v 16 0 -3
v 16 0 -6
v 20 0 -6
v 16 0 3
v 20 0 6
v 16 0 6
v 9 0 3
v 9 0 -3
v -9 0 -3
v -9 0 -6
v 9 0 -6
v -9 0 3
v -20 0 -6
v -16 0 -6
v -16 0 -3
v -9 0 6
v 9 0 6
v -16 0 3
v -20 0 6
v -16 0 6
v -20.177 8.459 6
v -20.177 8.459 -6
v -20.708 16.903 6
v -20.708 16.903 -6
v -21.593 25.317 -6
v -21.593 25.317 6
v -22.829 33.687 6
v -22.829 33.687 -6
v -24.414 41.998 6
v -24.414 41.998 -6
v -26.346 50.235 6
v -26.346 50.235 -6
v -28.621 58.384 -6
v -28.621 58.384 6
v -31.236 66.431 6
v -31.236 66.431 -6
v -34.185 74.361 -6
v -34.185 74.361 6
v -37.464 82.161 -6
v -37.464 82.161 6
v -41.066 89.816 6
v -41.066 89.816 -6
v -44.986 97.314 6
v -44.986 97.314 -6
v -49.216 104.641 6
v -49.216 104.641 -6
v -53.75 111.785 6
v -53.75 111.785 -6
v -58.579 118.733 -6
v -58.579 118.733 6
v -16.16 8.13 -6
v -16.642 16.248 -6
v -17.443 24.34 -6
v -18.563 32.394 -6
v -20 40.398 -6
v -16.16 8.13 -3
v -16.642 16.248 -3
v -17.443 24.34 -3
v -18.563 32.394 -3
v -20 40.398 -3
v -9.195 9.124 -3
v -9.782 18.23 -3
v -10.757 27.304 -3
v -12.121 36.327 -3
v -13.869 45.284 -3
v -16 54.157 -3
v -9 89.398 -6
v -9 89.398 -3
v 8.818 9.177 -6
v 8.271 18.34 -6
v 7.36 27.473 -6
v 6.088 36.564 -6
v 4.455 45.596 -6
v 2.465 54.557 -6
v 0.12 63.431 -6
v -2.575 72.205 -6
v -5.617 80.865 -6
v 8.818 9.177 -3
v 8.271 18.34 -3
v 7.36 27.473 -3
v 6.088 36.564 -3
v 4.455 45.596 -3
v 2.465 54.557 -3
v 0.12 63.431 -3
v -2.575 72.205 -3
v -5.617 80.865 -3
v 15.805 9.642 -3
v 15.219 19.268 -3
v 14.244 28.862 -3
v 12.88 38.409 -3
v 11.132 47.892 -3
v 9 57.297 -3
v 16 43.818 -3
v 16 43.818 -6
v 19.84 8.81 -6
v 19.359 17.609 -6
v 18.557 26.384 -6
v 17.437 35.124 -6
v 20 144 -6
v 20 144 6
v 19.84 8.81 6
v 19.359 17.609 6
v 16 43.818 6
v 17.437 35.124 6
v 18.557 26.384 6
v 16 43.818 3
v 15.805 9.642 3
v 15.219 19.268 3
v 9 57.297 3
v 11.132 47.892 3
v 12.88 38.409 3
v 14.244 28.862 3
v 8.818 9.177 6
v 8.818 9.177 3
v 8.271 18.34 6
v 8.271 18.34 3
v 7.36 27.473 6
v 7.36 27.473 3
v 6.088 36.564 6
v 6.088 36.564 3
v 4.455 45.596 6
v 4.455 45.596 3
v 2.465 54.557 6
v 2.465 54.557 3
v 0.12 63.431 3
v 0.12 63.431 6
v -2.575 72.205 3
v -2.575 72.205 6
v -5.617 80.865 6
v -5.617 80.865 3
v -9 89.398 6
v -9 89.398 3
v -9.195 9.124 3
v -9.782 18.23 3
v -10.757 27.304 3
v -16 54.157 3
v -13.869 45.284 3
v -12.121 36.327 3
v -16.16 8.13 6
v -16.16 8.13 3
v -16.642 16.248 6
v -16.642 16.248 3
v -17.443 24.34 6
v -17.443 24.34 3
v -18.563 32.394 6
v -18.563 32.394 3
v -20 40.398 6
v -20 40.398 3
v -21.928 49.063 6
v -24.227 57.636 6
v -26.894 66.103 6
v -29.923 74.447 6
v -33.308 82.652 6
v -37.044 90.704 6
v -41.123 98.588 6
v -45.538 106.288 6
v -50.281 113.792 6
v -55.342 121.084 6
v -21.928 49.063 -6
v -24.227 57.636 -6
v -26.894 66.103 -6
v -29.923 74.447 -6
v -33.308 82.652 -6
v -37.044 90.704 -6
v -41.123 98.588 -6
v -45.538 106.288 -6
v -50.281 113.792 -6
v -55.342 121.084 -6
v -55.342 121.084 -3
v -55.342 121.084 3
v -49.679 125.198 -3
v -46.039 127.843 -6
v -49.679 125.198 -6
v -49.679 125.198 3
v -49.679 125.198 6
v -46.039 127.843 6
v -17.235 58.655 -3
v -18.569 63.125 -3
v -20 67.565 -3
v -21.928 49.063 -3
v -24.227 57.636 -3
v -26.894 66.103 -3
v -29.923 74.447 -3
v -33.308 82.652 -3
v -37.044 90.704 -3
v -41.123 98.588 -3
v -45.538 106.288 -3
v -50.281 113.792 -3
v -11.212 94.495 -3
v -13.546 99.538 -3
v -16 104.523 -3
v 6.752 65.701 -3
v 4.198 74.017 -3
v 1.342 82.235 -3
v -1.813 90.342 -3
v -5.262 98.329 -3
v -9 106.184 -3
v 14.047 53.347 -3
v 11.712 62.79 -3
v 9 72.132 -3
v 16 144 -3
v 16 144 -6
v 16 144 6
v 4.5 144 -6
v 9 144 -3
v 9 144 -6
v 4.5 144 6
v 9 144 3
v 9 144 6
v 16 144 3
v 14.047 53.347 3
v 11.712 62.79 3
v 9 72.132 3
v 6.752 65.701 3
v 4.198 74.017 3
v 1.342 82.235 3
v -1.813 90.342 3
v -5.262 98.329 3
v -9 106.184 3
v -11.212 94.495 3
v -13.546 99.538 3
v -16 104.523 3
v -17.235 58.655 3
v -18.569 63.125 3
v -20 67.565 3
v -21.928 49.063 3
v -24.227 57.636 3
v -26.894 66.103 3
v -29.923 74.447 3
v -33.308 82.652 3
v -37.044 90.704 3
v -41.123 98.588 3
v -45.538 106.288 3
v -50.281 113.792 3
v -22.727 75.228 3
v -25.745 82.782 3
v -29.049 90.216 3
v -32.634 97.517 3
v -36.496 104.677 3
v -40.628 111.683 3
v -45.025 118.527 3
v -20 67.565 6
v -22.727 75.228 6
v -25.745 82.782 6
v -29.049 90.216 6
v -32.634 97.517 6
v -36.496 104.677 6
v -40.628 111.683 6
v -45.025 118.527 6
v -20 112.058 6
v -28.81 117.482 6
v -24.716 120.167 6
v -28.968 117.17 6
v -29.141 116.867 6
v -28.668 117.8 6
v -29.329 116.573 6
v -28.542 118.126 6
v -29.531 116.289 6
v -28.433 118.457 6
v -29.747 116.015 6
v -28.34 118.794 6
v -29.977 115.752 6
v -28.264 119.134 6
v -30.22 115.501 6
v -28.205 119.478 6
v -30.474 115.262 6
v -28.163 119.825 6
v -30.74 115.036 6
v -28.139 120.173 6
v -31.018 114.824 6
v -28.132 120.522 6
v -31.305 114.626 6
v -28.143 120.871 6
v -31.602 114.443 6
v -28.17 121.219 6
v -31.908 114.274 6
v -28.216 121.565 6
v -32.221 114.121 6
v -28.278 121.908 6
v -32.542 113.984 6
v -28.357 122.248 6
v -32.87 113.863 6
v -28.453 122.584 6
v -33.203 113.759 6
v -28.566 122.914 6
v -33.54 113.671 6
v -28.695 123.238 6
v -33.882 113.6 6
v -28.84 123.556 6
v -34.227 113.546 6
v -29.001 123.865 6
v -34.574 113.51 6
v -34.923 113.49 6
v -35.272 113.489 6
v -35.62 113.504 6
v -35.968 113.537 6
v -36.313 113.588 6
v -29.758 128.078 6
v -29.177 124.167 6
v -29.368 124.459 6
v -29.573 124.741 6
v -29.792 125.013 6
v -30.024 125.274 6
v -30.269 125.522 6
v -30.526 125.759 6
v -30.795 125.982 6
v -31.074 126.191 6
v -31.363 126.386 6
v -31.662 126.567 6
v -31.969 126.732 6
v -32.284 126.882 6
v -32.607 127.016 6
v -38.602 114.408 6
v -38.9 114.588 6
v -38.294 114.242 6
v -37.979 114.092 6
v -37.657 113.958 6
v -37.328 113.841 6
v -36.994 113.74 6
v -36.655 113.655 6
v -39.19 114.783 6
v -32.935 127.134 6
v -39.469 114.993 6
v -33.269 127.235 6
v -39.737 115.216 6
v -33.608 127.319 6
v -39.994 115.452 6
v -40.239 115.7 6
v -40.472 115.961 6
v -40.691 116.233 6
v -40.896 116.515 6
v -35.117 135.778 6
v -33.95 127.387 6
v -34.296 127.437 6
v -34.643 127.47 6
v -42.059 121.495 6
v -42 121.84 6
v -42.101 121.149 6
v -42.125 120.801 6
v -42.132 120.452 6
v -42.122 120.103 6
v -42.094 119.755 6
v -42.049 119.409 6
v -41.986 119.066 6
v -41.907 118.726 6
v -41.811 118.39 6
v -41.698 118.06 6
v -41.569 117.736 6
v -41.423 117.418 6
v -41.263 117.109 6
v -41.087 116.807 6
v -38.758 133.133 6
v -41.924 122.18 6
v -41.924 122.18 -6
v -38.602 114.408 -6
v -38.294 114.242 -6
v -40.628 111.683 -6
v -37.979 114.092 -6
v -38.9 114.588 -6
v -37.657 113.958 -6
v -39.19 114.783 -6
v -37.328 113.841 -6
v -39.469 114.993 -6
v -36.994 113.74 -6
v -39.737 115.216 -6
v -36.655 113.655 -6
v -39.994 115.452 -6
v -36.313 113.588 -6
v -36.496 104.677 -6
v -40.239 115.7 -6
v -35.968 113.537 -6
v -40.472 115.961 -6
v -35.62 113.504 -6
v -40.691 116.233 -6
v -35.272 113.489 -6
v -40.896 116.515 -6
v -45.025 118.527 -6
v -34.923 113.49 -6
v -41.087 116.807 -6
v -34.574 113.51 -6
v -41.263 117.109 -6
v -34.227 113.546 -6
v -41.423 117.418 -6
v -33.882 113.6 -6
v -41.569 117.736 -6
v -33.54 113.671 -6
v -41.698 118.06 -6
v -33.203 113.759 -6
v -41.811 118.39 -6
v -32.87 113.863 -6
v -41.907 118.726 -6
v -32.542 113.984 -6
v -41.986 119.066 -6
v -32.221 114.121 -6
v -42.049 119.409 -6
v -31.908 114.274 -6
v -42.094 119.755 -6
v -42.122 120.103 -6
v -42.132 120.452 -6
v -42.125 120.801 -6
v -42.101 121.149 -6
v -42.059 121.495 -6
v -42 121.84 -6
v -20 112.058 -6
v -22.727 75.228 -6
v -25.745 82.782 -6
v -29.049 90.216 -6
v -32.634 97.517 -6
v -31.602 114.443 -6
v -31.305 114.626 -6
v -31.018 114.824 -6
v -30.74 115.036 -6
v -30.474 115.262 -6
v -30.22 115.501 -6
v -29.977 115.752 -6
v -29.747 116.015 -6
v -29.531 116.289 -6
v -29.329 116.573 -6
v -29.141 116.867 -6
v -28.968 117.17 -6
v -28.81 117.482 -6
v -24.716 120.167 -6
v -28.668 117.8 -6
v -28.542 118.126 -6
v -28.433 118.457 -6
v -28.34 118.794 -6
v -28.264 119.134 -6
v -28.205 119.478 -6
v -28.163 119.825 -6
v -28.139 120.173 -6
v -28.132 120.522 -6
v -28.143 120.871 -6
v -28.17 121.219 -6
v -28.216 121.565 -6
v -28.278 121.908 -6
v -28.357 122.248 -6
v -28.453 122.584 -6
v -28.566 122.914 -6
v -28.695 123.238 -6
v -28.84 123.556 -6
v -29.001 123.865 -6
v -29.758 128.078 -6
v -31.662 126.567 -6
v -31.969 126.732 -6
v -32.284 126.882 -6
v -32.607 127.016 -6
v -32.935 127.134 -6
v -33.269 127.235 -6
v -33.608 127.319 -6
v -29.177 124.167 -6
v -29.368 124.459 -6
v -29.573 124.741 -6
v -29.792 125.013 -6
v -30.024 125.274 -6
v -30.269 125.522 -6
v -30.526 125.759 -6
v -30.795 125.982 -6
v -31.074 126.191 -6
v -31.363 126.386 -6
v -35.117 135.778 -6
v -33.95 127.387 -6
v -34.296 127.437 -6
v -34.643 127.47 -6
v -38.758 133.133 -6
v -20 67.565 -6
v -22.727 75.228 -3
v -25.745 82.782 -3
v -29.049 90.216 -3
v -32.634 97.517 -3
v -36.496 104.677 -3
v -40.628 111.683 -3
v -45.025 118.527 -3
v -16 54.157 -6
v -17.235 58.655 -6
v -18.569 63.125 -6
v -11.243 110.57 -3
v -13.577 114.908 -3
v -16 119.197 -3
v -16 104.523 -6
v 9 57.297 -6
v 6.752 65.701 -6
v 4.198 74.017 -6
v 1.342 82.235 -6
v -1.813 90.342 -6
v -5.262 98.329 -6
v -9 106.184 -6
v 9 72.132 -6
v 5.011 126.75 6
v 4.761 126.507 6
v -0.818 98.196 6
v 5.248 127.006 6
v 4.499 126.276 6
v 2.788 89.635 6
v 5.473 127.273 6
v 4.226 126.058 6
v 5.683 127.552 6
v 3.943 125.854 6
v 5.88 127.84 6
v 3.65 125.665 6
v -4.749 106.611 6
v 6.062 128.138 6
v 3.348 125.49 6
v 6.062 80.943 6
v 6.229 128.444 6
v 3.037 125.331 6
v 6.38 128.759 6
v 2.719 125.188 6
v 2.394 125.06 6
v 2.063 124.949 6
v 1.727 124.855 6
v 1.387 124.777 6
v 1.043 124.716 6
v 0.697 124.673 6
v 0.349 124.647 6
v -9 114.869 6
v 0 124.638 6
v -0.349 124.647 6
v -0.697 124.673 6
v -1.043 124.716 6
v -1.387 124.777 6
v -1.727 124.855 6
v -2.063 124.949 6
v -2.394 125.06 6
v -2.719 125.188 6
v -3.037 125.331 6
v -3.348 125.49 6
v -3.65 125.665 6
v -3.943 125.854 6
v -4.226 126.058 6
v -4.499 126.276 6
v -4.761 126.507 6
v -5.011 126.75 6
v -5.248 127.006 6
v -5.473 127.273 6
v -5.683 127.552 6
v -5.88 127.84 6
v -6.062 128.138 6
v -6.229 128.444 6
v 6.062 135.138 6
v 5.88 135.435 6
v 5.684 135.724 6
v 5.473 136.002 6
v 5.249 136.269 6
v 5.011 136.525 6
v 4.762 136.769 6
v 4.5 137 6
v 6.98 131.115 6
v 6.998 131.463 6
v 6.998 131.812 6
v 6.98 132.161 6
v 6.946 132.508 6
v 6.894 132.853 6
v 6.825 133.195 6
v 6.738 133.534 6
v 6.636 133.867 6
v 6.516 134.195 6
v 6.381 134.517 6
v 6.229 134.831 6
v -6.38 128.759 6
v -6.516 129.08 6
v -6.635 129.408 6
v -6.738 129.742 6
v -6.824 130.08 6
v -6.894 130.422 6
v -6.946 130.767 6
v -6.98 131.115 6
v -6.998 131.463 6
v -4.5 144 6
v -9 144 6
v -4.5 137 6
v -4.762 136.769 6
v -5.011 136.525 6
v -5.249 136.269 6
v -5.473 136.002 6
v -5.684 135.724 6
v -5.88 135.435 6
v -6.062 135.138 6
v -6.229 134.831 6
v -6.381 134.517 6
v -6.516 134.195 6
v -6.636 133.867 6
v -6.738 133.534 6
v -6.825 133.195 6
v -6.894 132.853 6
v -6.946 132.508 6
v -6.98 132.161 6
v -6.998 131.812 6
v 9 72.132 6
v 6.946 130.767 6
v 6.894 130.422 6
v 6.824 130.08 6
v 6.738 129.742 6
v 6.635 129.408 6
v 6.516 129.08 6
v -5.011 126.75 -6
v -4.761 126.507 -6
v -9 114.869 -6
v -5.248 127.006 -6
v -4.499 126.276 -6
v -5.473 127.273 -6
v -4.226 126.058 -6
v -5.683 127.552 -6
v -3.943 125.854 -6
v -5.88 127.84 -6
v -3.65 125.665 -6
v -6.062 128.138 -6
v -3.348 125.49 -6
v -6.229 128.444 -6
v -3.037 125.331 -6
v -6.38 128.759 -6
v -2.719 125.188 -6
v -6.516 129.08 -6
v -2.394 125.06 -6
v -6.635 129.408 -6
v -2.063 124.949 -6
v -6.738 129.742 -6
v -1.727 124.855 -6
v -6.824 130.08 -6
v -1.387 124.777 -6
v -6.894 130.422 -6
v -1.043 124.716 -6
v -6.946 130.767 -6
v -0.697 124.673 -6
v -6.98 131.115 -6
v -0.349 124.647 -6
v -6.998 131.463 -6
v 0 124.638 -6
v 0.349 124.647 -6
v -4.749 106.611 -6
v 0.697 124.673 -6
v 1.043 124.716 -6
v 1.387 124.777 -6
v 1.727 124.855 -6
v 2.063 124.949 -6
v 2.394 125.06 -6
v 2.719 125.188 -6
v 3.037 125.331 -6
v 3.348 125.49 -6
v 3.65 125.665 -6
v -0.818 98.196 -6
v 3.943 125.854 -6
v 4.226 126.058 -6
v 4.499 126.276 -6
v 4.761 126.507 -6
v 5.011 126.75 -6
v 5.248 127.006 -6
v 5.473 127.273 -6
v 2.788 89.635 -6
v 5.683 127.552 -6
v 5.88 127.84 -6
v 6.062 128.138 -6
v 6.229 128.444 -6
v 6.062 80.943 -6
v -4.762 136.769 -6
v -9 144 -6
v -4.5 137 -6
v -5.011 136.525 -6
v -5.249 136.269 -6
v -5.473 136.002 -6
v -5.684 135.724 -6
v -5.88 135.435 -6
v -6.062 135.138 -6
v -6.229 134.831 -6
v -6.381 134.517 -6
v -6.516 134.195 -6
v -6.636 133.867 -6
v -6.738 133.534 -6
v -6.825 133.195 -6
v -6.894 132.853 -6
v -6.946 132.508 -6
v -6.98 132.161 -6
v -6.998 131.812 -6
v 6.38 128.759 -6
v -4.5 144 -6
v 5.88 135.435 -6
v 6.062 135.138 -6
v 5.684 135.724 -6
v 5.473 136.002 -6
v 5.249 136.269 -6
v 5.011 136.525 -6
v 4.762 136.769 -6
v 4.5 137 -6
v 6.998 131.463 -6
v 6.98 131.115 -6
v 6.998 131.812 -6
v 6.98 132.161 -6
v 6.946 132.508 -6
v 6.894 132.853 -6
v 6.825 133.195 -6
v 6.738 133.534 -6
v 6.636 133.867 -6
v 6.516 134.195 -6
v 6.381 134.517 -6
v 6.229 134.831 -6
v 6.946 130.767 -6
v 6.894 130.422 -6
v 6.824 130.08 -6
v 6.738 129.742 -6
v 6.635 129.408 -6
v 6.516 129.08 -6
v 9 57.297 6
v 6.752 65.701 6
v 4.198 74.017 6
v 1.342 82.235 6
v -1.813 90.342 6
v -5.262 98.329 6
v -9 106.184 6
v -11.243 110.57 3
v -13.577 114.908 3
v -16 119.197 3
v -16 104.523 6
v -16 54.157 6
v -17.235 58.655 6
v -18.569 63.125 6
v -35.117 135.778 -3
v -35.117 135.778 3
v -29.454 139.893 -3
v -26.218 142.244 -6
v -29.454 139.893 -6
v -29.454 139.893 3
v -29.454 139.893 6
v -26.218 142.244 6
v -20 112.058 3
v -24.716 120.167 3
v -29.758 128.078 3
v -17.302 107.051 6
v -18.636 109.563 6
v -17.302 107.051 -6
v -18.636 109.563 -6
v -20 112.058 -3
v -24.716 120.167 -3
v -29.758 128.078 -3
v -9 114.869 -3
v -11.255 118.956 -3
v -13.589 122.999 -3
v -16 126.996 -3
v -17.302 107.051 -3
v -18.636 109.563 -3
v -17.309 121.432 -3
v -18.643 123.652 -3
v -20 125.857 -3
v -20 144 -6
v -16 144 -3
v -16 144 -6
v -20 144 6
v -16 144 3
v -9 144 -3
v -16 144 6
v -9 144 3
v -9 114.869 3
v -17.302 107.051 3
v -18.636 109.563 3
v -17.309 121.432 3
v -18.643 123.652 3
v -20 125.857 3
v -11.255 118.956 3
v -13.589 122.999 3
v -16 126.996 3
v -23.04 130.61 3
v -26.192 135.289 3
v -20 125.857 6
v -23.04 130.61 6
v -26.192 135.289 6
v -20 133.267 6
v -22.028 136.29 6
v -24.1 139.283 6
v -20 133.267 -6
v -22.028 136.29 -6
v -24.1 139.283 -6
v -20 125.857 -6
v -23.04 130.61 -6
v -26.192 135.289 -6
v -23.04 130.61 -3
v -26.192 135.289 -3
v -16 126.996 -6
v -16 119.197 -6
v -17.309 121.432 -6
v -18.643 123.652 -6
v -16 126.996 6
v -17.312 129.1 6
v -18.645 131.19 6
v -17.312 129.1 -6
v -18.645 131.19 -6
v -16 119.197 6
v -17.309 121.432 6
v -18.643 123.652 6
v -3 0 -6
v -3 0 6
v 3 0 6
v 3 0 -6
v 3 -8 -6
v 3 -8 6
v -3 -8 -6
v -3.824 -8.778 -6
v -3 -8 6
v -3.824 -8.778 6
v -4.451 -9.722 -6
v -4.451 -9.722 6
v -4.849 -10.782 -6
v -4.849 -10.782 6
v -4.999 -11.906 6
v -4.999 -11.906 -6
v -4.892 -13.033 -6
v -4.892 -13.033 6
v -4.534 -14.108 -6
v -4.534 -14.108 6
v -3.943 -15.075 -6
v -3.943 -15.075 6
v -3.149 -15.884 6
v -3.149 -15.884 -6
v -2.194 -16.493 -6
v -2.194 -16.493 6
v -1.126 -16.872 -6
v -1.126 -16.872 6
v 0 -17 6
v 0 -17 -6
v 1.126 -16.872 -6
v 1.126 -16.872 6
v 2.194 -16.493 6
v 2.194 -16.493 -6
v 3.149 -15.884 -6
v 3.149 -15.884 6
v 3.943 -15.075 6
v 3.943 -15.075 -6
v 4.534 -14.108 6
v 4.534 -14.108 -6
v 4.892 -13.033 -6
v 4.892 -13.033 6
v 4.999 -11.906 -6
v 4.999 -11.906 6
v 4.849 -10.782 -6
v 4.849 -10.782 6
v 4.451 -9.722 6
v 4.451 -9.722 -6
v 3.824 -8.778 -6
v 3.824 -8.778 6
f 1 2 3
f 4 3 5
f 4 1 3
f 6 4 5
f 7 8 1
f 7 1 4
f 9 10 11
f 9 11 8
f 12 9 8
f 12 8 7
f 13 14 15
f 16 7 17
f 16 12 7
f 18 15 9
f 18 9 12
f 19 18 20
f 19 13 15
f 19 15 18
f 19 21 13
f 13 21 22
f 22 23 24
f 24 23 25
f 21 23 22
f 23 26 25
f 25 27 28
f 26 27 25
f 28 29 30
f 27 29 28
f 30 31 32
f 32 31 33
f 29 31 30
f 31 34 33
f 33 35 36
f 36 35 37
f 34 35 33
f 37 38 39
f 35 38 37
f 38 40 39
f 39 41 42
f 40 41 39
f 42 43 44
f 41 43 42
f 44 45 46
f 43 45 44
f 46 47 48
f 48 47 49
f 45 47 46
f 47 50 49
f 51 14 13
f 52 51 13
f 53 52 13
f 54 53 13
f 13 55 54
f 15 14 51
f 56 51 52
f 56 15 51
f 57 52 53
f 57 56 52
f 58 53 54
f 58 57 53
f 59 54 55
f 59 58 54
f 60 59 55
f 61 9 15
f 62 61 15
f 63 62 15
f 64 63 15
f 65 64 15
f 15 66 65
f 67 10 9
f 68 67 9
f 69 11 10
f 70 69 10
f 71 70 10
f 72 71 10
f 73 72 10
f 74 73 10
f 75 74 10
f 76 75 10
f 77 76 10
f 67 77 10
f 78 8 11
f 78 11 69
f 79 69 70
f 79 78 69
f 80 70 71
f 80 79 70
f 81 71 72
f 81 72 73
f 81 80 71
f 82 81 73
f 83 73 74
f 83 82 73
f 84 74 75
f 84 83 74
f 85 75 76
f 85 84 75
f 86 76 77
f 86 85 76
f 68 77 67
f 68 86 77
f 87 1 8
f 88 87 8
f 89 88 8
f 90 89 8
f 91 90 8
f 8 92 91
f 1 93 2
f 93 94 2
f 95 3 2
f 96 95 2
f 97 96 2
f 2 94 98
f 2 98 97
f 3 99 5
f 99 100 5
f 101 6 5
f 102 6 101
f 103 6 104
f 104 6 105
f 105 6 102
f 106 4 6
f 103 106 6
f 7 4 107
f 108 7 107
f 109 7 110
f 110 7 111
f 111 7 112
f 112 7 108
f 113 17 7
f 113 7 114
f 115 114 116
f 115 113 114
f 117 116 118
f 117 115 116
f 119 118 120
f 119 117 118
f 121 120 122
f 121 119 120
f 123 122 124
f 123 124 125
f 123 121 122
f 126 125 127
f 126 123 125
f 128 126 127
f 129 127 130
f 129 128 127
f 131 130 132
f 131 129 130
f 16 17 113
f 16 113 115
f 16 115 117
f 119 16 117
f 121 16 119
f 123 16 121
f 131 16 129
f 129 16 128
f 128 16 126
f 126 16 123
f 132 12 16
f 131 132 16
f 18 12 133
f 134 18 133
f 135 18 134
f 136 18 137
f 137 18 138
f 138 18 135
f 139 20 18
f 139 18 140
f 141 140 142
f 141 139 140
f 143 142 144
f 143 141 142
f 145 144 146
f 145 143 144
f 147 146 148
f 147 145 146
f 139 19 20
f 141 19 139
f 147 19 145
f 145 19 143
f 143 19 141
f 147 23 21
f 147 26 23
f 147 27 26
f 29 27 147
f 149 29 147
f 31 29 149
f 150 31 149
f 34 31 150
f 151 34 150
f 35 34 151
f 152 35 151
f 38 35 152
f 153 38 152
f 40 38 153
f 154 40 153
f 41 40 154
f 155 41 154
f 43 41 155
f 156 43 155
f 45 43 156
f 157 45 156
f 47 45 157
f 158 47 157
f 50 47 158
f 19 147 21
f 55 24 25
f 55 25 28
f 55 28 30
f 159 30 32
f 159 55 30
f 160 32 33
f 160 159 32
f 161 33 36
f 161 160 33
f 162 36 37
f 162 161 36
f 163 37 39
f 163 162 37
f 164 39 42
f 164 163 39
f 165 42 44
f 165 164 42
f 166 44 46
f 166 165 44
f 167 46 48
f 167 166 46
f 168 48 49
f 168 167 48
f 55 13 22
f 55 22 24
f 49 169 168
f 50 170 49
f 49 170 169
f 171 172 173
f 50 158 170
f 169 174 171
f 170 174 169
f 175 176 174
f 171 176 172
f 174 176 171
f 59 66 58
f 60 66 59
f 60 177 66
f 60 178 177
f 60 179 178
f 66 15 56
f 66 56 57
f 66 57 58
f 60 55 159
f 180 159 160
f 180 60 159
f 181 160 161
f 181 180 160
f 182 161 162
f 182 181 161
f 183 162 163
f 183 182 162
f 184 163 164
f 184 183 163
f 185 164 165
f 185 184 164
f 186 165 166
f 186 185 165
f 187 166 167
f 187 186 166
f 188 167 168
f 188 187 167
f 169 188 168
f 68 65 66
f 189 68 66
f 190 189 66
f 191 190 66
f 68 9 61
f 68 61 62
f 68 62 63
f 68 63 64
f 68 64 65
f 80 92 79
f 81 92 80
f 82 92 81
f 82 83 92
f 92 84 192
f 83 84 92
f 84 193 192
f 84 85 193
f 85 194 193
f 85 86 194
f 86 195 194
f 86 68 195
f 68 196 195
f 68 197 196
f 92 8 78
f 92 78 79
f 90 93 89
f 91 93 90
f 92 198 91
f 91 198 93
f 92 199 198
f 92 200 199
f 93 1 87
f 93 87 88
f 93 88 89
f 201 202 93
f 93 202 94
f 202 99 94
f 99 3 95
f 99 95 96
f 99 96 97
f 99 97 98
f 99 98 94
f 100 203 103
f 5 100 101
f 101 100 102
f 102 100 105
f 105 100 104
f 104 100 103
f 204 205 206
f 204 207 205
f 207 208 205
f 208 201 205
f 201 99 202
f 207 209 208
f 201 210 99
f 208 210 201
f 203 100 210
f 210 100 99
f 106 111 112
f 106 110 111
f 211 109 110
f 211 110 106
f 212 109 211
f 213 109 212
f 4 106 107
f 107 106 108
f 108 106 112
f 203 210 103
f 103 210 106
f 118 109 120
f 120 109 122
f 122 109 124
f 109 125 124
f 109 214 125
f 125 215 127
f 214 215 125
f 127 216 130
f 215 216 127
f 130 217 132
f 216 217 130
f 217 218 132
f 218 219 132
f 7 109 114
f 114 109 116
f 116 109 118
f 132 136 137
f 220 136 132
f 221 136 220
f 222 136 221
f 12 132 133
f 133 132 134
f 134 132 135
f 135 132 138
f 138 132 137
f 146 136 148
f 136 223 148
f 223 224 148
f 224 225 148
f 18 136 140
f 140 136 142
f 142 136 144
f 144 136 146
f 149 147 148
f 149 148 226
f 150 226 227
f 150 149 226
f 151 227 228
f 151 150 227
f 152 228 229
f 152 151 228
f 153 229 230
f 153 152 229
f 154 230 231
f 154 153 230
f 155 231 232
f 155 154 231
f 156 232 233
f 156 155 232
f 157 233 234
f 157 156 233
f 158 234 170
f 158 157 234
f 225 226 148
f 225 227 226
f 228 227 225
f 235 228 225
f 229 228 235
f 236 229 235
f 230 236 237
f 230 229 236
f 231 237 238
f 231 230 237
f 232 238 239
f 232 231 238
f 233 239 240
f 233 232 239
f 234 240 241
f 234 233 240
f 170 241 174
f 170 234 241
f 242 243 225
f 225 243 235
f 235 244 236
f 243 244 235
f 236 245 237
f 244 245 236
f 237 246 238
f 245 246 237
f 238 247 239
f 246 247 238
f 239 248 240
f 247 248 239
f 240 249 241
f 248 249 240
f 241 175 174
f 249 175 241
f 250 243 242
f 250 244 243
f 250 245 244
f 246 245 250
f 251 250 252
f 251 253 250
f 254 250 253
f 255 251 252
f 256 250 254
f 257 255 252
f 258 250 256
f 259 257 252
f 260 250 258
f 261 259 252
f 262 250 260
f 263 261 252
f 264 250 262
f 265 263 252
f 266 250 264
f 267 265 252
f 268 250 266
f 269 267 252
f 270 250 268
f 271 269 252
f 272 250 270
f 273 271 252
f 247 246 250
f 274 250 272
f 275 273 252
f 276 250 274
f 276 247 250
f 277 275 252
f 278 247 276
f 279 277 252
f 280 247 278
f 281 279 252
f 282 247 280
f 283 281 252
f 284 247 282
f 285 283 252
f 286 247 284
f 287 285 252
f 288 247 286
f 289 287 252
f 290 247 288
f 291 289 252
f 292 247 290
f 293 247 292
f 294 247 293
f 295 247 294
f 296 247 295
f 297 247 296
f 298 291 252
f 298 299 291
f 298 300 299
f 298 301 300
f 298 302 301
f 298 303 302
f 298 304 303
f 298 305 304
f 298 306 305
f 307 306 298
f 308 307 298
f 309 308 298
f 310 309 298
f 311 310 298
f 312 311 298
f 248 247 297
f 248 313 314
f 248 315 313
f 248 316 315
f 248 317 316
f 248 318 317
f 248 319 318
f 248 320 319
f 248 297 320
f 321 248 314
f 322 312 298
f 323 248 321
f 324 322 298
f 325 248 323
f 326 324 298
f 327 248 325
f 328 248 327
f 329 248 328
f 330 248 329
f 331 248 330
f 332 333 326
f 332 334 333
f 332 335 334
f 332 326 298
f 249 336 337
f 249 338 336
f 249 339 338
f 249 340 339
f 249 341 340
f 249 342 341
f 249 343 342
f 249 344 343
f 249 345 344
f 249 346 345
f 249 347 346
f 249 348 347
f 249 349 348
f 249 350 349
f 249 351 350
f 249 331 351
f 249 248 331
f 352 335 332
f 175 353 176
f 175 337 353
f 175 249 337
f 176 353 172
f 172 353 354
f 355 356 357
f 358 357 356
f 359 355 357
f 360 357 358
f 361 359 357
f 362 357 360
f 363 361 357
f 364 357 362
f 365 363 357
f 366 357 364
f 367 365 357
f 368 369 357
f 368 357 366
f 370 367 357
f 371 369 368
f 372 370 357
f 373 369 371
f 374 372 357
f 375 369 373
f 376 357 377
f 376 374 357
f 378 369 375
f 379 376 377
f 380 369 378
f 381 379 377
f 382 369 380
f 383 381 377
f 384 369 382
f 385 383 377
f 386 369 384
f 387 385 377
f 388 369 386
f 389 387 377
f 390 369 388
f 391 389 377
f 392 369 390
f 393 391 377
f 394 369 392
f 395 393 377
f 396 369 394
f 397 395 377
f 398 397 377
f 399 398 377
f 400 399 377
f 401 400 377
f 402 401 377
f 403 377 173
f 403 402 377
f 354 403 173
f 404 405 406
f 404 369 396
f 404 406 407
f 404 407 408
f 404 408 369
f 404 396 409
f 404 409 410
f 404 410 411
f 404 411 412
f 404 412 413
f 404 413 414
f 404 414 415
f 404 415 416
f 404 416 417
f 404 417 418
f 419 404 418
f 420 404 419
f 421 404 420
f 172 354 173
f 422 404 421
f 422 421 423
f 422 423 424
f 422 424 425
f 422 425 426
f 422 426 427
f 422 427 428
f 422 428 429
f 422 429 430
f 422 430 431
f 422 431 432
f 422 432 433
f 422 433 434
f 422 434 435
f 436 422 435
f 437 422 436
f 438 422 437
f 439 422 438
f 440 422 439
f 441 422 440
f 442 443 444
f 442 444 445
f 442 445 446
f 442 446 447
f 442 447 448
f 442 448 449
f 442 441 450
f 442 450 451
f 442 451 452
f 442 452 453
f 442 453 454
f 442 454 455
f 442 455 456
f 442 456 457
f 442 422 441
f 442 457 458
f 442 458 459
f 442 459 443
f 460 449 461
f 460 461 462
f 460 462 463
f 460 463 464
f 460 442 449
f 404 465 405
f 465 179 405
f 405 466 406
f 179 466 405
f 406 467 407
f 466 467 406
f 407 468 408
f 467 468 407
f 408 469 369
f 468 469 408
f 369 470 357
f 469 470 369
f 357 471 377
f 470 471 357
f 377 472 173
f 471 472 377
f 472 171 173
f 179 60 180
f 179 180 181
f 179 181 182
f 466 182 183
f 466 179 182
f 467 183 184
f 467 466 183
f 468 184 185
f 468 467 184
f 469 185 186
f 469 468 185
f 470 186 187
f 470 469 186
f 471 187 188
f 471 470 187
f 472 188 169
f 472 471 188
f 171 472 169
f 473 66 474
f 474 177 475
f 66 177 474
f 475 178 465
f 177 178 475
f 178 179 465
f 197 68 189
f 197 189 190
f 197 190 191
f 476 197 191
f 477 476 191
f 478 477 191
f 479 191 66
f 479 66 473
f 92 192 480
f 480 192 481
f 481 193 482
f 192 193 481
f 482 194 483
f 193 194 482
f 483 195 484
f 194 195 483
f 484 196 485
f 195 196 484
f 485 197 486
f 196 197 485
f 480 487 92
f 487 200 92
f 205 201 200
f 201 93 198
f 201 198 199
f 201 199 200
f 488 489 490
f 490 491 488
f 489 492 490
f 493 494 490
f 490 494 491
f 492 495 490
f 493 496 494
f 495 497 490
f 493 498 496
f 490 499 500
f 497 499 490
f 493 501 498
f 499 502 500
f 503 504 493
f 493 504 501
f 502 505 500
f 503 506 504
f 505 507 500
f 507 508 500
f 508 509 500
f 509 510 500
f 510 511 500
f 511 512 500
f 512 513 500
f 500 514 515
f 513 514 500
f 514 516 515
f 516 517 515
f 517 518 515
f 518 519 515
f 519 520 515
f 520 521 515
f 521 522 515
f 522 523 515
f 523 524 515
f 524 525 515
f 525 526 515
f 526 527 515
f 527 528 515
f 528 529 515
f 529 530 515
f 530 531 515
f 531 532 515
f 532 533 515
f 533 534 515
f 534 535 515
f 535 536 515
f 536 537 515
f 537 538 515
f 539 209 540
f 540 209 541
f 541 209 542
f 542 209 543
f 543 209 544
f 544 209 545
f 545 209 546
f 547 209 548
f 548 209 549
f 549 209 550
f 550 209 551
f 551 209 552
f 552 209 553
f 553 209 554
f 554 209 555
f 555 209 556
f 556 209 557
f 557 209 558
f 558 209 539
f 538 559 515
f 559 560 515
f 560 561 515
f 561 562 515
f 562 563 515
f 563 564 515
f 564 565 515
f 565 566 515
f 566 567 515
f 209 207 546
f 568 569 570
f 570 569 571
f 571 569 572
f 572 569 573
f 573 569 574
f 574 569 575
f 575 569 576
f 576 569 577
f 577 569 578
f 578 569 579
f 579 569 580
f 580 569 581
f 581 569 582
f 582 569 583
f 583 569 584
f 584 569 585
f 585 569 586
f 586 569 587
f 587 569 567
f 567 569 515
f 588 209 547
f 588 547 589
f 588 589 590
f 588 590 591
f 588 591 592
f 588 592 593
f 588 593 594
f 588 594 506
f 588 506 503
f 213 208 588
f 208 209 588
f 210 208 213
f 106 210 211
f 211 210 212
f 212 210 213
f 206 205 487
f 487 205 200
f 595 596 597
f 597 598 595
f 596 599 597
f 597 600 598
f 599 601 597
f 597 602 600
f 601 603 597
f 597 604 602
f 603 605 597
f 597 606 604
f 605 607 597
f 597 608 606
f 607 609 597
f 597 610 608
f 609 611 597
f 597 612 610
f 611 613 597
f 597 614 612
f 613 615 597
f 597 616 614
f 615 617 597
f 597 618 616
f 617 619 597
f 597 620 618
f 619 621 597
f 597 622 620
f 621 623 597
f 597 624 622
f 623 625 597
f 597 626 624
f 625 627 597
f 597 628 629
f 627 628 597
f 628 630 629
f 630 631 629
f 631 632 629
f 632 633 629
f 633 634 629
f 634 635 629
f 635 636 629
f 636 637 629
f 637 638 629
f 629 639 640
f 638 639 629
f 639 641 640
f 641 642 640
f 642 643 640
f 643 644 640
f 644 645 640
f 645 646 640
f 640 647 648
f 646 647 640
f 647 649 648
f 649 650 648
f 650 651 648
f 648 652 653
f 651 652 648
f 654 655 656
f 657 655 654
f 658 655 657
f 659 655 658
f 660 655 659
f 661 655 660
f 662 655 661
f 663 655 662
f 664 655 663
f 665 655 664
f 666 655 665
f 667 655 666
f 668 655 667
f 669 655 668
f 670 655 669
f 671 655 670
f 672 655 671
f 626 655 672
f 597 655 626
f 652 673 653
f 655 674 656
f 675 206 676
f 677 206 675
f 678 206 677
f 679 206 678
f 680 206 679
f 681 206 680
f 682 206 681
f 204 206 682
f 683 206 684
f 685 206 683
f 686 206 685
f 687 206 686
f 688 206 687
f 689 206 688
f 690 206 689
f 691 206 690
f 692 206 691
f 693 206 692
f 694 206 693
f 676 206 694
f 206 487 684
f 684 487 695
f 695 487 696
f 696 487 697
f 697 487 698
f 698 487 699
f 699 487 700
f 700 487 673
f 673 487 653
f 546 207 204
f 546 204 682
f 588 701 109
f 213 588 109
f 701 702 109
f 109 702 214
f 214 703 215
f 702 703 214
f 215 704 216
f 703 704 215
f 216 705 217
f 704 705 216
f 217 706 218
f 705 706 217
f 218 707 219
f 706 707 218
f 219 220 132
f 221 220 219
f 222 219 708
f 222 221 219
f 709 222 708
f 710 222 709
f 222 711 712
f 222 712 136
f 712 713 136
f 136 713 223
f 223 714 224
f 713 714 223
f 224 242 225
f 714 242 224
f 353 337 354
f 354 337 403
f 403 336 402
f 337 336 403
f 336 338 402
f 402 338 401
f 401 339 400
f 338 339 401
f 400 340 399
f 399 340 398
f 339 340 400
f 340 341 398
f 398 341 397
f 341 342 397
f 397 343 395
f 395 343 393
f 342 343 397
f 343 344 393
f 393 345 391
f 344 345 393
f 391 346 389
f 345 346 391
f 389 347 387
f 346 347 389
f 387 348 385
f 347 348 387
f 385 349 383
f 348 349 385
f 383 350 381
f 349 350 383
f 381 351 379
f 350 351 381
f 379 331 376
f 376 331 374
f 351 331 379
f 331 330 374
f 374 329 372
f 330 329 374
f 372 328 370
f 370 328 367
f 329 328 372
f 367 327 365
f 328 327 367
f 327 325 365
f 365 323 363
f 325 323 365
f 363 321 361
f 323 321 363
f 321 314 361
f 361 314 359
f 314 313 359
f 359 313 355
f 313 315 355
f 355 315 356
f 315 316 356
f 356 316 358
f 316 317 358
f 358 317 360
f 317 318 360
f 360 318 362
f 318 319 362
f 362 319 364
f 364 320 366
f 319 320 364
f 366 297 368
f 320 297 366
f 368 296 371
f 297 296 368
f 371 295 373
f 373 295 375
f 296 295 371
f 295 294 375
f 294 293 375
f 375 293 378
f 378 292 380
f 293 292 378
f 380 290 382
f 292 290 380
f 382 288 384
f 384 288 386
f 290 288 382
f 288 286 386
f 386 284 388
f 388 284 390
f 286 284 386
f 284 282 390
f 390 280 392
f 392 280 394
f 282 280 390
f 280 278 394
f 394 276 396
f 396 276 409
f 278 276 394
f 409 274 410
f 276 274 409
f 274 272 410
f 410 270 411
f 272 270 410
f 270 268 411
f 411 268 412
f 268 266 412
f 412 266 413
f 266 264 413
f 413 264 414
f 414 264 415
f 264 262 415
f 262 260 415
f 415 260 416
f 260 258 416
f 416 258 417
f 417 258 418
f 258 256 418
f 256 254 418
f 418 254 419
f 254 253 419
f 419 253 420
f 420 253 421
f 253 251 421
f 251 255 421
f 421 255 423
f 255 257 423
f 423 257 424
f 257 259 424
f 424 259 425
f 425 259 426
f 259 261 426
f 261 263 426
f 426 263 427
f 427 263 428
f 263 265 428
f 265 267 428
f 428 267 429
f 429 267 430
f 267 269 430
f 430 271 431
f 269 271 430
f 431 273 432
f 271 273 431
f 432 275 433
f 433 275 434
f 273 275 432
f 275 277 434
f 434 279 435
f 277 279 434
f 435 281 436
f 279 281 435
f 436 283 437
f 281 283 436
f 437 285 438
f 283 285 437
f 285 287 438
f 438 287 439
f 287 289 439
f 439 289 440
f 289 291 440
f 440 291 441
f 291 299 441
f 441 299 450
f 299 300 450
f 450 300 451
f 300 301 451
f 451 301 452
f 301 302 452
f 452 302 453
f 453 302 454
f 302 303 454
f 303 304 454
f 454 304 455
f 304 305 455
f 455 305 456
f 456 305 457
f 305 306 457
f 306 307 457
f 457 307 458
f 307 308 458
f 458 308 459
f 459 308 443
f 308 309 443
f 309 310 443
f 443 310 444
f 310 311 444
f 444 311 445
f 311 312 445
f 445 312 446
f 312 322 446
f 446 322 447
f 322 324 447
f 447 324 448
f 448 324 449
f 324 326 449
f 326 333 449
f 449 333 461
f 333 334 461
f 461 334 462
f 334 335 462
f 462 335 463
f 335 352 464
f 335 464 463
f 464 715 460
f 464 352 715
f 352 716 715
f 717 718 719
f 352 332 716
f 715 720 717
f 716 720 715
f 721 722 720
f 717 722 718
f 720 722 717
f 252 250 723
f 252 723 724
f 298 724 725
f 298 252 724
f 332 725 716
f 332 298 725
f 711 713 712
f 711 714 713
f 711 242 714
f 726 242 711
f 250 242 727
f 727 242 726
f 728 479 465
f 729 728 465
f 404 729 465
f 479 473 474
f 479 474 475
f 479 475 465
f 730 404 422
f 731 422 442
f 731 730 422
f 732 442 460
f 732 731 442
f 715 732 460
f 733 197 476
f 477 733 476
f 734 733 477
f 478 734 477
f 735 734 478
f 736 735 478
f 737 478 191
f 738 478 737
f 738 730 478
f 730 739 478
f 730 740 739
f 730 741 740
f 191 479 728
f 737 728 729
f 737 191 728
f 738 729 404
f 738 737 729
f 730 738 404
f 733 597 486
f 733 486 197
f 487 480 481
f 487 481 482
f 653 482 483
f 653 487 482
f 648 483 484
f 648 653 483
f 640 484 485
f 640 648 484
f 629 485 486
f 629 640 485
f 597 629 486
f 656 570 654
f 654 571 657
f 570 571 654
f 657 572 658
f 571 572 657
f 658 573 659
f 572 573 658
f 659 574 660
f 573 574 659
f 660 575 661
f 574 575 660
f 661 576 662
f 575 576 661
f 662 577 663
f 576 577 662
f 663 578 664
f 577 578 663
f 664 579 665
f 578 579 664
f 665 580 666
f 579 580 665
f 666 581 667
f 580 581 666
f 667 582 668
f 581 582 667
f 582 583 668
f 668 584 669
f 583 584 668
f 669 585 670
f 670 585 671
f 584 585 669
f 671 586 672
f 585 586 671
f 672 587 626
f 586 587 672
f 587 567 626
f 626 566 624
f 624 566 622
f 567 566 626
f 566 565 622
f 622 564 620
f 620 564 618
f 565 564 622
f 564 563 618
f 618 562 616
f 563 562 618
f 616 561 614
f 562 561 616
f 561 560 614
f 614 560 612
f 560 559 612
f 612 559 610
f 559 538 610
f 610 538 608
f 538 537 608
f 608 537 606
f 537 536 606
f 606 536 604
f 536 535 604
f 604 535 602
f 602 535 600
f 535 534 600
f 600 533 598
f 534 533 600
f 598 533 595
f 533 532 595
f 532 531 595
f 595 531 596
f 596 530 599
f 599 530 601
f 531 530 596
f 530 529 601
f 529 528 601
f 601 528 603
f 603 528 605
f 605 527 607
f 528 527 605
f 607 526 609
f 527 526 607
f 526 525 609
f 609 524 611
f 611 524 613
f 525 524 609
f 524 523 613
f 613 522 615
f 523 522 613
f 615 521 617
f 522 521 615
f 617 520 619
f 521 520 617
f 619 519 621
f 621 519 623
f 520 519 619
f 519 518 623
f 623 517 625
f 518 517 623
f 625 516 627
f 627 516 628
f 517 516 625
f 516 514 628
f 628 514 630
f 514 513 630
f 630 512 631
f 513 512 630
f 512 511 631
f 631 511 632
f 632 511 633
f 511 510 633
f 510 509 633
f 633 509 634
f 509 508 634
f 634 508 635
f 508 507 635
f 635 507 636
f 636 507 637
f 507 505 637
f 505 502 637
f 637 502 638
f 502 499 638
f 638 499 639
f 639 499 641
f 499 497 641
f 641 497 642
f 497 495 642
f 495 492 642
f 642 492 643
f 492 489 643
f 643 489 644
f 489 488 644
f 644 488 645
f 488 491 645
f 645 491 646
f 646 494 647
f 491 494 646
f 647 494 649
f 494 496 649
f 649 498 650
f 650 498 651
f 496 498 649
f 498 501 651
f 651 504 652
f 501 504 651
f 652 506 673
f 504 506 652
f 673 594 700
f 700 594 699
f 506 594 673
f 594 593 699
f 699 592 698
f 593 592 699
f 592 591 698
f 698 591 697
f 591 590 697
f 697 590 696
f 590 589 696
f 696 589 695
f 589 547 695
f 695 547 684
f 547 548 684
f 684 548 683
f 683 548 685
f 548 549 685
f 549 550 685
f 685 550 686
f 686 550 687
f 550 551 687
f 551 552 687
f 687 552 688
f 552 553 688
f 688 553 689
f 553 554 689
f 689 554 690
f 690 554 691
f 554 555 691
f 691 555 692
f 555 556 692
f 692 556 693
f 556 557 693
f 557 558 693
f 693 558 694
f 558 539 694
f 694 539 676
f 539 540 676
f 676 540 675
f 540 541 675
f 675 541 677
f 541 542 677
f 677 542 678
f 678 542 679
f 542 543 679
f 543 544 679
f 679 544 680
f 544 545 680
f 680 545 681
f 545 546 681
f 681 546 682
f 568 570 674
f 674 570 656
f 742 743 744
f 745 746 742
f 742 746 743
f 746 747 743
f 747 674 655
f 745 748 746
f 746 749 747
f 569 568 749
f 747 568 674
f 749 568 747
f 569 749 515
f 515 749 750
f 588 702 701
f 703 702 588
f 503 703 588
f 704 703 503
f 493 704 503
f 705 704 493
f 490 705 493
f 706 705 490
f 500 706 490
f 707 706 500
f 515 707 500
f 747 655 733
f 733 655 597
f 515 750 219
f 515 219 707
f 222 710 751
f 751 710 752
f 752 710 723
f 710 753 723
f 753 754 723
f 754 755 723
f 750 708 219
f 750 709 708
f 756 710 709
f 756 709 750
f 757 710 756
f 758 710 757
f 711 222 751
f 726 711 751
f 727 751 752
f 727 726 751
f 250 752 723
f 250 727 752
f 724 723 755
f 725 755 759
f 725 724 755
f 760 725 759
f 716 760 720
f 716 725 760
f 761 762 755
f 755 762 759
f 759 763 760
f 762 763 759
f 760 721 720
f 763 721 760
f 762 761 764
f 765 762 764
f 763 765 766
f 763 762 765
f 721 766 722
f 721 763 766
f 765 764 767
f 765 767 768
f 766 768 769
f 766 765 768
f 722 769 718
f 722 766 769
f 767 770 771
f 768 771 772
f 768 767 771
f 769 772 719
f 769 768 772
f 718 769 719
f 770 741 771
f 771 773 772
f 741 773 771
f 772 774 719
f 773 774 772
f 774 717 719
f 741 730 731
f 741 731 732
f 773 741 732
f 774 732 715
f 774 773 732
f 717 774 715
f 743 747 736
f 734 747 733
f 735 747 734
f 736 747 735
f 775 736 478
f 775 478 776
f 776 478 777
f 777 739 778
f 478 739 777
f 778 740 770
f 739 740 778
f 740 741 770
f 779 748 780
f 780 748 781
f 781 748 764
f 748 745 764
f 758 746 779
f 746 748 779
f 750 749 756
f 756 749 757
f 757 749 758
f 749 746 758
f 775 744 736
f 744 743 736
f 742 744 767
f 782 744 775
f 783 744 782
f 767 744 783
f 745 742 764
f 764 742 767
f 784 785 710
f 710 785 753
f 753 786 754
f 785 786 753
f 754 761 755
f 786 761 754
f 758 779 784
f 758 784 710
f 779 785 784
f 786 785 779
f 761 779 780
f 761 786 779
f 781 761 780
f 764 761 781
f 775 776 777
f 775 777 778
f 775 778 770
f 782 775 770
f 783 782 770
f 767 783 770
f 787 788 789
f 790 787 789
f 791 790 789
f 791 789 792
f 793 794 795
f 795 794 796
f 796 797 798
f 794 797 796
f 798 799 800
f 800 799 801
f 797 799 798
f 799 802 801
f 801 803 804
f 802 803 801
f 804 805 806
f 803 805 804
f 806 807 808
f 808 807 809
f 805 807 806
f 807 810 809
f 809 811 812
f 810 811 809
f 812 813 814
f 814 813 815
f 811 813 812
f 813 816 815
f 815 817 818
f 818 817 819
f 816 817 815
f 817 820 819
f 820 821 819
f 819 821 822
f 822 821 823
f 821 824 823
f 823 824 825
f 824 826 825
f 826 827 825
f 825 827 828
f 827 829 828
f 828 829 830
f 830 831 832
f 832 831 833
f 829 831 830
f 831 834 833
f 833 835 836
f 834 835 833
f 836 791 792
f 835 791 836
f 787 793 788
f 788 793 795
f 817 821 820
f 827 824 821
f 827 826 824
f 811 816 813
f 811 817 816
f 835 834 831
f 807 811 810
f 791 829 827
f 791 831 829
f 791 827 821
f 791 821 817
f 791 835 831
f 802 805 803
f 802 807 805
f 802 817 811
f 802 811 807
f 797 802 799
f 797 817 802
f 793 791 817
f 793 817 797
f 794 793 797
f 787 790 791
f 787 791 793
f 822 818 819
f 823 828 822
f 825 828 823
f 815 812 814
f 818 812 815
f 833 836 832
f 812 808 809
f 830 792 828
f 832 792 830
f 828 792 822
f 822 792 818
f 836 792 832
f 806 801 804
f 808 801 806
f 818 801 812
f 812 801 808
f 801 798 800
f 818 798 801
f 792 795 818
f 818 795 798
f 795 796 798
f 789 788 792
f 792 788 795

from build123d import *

# Parameters (mm, degrees)
SKETCH004_W     = 7
SKETCH004_H     = 3
SKETCH005_W     = 7
SKETCH005_H     = 3
POCKET_DEPTH    = 12.001
POCKET001_DEPTH = 12.001
SKETCH009_W     = 7
SKETCH009_H     = 3
SKETCH010_W     = 7
SKETCH010_H     = 3
PAD_DEPTH       = 6


with BuildPart() as body:
    # AdditivePipe: sweep along a path in Sketch002
    with BuildLine(Plane.XY) as additivepipe_path:
        ThreePointArc((0, 0), (-10.865453, 68.601773), (-42.398227, 130.488326))
    # Sketch → AdditivePipe (sweep)
    with BuildSketch(Plane.XZ):
        Polygon((-20, 6), (-20, -6), (-16, -6), (-16, -3), (-9, -3), (-9, -6), (9, -6), (9, -3), (16, -3), (16, -6), (20, -6), (20, 6), (16, 6), (16, 3), (9, 3), (9, 6), (-9, 6), (-9, 3), (-16, 3), (-16, 6), align=None)
    sweep(path=additivepipe_path.line)

    # AdditivePipe001: sweep along a path in Sketch001
    with BuildLine(Plane.XY) as additivepipe001_path:
        Line((0, 0), (0, 144))
    # Sketch → AdditivePipe001 (sweep)
    with BuildSketch(Plane.XZ):
        Polygon((-20, 6), (-20, -6), (-16, -6), (-16, -3), (-9, -3), (-9, -6), (9, -6), (9, -3), (16, -3), (16, -6), (20, -6), (20, 6), (16, 6), (16, 3), (9, 3), (9, 6), (-9, 6), (-9, 3), (-16, 3), (-16, 6), align=None)
    sweep(path=additivepipe001_path.line)

    # SubtractivePipe: sweep along a path in Sketch001
    with BuildLine(Plane.XY) as subtractivepipe_path:
        Line((0, 0), (0, 144))
    # Sketch004 → SubtractivePipe (sweep, cut)
    with BuildSketch(Plane.XZ):
        with Locations((-12.5, 4.5)):
            Rectangle(SKETCH004_W, SKETCH004_H)
    sweep(path=subtractivepipe_path.line, mode=Mode.SUBTRACT)

    # SubtractivePipe001: sweep along a path in Sketch002
    with BuildLine(Plane.XY) as subtractivepipe001_path:
        ThreePointArc((0, 0), (-10.865453, 68.601773), (-42.398227, 130.488326))
    # Sketch004 → SubtractivePipe001 (sweep, cut)
    with BuildSketch(Plane.XZ):
        with Locations((-12.5, 4.5)):
            Rectangle(SKETCH004_W, SKETCH004_H)
    sweep(path=subtractivepipe001_path.line, mode=Mode.SUBTRACT)

    # SubtractivePipe002: sweep along a path in Sketch002
    with BuildLine(Plane.XY) as subtractivepipe002_path:
        ThreePointArc((0, 0), (-10.865453, 68.601773), (-42.398227, 130.488326))
    # Sketch005 (on Face1 of SubtractivePipe001) → SubtractivePipe002 (sweep, cut)
    with BuildSketch(Plane.XZ):
        with Locations((12.5, 4.5)):
            Rectangle(SKETCH005_W, SKETCH005_H)
    sweep(path=subtractivepipe002_path.line, mode=Mode.SUBTRACT)

    # SubtractivePipe003: sweep along a path in Sketch001
    with BuildLine(Plane.XY) as subtractivepipe003_path:
        Line((0, 0), (0, 144))
    # Sketch005 (on Face1 of SubtractivePipe001) → SubtractivePipe003 (sweep, cut)
    with BuildSketch(Plane.XZ):
        with Locations((12.5, 4.5)):
            Rectangle(SKETCH005_W, SKETCH005_H)
    subtractivepipe003 = sweep(path=subtractivepipe003_path.line, mode=Mode.SUBTRACT)

    # Mirrored: SubtractivePipe003 across XY
    add(subtractivepipe003.mirror(Plane.XY), mode=Mode.SUBTRACT)

    # Sketch006 (on Face53 of Mirrored) → Pocket (cut, through all)
    with BuildSketch(Plane(origin=(0, 0, 6), x_dir=(-1, 0, 0), z_dir=(0, 0, 1))):
        with BuildLine():
            Line((38.757651, -133.13336), (46.038804, -127.843292))
            Line((46.038804, -127.843292), (41.924307, -122.180173))
            ThreePointArc((41.924307, -122.180173), (31.017586, -114.824218), (34.643154, -127.470241))
            Line((38.757651, -133.13336), (34.643154, -127.470241))
        make_face()
    extrude(amount=-POCKET_DEPTH, mode=Mode.SUBTRACT)

    # Sketch007 (on Face63 of Pocket) → Pocket001 (cut, through all)
    with BuildSketch(Plane(origin=(0, 0, 6), x_dir=(-1, 0, 0), z_dir=(0, 0, 1))):
        with BuildLine():
            Line((-4.5, -144), (4.5, -144))
            Line((4.5, -144), (4.5, -137))
            ThreePointArc((4.5, -137), (0, -124.638097), (-4.5, -137))
            Line((-4.5, -144), (-4.5, -137))
        make_face()
    extrude(amount=-POCKET001_DEPTH, mode=Mode.SUBTRACT)

    # SubtractivePipe004: sweep along a path in Sketch002
    with BuildLine(Plane.XY) as subtractivepipe004_path:
        ThreePointArc((0, 0), (-10.865453, 68.601773), (-42.398227, 130.488326))
    # Sketch009 → SubtractivePipe004 (sweep, cut)
    with BuildSketch(Plane.XZ):
        with Locations((-12.5, -4.5)):
            Rectangle(SKETCH009_W, SKETCH009_H)
    sweep(path=subtractivepipe004_path.line, mode=Mode.SUBTRACT)

    # SubtractivePipe005: sweep along a path in Sketch001
    with BuildLine(Plane.XY) as subtractivepipe005_path:
        Line((0, 0), (0, 144))
    # Sketch009 → SubtractivePipe005 (sweep, cut)
    with BuildSketch(Plane.XZ):
        with Locations((-12.5, -4.5)):
            Rectangle(SKETCH009_W, SKETCH009_H)
    sweep(path=subtractivepipe005_path.line, mode=Mode.SUBTRACT)

    # SubtractivePipe006: sweep along a path in Sketch002
    with BuildLine(Plane.XY) as subtractivepipe006_path:
        ThreePointArc((0, 0), (-10.865453, 68.601773), (-42.398227, 130.488326))
    # Sketch010 (on Face1 of SubtractivePipe005) → SubtractivePipe006 (sweep, cut)
    with BuildSketch(Plane.XZ):
        with Locations((12.5, -4.5)):
            Rectangle(SKETCH010_W, SKETCH010_H)
    sweep(path=subtractivepipe006_path.line, mode=Mode.SUBTRACT)


with BuildPart() as body001:
    # Sketch008 → Pad (new body, symmetric)
    with BuildSketch(Plane.XY):
        with BuildLine():
            Line((-3, 0), (3, 0))
            Line((3, 0), (3, -8))
            ThreePointArc((-3, -8), (0, -17), (3, -8))
            Line((-3, 0), (-3, -8))
        make_face()
    extrude(amount=PAD_DEPTH, both=True)


solid = Compound([body.part, body001.part])
